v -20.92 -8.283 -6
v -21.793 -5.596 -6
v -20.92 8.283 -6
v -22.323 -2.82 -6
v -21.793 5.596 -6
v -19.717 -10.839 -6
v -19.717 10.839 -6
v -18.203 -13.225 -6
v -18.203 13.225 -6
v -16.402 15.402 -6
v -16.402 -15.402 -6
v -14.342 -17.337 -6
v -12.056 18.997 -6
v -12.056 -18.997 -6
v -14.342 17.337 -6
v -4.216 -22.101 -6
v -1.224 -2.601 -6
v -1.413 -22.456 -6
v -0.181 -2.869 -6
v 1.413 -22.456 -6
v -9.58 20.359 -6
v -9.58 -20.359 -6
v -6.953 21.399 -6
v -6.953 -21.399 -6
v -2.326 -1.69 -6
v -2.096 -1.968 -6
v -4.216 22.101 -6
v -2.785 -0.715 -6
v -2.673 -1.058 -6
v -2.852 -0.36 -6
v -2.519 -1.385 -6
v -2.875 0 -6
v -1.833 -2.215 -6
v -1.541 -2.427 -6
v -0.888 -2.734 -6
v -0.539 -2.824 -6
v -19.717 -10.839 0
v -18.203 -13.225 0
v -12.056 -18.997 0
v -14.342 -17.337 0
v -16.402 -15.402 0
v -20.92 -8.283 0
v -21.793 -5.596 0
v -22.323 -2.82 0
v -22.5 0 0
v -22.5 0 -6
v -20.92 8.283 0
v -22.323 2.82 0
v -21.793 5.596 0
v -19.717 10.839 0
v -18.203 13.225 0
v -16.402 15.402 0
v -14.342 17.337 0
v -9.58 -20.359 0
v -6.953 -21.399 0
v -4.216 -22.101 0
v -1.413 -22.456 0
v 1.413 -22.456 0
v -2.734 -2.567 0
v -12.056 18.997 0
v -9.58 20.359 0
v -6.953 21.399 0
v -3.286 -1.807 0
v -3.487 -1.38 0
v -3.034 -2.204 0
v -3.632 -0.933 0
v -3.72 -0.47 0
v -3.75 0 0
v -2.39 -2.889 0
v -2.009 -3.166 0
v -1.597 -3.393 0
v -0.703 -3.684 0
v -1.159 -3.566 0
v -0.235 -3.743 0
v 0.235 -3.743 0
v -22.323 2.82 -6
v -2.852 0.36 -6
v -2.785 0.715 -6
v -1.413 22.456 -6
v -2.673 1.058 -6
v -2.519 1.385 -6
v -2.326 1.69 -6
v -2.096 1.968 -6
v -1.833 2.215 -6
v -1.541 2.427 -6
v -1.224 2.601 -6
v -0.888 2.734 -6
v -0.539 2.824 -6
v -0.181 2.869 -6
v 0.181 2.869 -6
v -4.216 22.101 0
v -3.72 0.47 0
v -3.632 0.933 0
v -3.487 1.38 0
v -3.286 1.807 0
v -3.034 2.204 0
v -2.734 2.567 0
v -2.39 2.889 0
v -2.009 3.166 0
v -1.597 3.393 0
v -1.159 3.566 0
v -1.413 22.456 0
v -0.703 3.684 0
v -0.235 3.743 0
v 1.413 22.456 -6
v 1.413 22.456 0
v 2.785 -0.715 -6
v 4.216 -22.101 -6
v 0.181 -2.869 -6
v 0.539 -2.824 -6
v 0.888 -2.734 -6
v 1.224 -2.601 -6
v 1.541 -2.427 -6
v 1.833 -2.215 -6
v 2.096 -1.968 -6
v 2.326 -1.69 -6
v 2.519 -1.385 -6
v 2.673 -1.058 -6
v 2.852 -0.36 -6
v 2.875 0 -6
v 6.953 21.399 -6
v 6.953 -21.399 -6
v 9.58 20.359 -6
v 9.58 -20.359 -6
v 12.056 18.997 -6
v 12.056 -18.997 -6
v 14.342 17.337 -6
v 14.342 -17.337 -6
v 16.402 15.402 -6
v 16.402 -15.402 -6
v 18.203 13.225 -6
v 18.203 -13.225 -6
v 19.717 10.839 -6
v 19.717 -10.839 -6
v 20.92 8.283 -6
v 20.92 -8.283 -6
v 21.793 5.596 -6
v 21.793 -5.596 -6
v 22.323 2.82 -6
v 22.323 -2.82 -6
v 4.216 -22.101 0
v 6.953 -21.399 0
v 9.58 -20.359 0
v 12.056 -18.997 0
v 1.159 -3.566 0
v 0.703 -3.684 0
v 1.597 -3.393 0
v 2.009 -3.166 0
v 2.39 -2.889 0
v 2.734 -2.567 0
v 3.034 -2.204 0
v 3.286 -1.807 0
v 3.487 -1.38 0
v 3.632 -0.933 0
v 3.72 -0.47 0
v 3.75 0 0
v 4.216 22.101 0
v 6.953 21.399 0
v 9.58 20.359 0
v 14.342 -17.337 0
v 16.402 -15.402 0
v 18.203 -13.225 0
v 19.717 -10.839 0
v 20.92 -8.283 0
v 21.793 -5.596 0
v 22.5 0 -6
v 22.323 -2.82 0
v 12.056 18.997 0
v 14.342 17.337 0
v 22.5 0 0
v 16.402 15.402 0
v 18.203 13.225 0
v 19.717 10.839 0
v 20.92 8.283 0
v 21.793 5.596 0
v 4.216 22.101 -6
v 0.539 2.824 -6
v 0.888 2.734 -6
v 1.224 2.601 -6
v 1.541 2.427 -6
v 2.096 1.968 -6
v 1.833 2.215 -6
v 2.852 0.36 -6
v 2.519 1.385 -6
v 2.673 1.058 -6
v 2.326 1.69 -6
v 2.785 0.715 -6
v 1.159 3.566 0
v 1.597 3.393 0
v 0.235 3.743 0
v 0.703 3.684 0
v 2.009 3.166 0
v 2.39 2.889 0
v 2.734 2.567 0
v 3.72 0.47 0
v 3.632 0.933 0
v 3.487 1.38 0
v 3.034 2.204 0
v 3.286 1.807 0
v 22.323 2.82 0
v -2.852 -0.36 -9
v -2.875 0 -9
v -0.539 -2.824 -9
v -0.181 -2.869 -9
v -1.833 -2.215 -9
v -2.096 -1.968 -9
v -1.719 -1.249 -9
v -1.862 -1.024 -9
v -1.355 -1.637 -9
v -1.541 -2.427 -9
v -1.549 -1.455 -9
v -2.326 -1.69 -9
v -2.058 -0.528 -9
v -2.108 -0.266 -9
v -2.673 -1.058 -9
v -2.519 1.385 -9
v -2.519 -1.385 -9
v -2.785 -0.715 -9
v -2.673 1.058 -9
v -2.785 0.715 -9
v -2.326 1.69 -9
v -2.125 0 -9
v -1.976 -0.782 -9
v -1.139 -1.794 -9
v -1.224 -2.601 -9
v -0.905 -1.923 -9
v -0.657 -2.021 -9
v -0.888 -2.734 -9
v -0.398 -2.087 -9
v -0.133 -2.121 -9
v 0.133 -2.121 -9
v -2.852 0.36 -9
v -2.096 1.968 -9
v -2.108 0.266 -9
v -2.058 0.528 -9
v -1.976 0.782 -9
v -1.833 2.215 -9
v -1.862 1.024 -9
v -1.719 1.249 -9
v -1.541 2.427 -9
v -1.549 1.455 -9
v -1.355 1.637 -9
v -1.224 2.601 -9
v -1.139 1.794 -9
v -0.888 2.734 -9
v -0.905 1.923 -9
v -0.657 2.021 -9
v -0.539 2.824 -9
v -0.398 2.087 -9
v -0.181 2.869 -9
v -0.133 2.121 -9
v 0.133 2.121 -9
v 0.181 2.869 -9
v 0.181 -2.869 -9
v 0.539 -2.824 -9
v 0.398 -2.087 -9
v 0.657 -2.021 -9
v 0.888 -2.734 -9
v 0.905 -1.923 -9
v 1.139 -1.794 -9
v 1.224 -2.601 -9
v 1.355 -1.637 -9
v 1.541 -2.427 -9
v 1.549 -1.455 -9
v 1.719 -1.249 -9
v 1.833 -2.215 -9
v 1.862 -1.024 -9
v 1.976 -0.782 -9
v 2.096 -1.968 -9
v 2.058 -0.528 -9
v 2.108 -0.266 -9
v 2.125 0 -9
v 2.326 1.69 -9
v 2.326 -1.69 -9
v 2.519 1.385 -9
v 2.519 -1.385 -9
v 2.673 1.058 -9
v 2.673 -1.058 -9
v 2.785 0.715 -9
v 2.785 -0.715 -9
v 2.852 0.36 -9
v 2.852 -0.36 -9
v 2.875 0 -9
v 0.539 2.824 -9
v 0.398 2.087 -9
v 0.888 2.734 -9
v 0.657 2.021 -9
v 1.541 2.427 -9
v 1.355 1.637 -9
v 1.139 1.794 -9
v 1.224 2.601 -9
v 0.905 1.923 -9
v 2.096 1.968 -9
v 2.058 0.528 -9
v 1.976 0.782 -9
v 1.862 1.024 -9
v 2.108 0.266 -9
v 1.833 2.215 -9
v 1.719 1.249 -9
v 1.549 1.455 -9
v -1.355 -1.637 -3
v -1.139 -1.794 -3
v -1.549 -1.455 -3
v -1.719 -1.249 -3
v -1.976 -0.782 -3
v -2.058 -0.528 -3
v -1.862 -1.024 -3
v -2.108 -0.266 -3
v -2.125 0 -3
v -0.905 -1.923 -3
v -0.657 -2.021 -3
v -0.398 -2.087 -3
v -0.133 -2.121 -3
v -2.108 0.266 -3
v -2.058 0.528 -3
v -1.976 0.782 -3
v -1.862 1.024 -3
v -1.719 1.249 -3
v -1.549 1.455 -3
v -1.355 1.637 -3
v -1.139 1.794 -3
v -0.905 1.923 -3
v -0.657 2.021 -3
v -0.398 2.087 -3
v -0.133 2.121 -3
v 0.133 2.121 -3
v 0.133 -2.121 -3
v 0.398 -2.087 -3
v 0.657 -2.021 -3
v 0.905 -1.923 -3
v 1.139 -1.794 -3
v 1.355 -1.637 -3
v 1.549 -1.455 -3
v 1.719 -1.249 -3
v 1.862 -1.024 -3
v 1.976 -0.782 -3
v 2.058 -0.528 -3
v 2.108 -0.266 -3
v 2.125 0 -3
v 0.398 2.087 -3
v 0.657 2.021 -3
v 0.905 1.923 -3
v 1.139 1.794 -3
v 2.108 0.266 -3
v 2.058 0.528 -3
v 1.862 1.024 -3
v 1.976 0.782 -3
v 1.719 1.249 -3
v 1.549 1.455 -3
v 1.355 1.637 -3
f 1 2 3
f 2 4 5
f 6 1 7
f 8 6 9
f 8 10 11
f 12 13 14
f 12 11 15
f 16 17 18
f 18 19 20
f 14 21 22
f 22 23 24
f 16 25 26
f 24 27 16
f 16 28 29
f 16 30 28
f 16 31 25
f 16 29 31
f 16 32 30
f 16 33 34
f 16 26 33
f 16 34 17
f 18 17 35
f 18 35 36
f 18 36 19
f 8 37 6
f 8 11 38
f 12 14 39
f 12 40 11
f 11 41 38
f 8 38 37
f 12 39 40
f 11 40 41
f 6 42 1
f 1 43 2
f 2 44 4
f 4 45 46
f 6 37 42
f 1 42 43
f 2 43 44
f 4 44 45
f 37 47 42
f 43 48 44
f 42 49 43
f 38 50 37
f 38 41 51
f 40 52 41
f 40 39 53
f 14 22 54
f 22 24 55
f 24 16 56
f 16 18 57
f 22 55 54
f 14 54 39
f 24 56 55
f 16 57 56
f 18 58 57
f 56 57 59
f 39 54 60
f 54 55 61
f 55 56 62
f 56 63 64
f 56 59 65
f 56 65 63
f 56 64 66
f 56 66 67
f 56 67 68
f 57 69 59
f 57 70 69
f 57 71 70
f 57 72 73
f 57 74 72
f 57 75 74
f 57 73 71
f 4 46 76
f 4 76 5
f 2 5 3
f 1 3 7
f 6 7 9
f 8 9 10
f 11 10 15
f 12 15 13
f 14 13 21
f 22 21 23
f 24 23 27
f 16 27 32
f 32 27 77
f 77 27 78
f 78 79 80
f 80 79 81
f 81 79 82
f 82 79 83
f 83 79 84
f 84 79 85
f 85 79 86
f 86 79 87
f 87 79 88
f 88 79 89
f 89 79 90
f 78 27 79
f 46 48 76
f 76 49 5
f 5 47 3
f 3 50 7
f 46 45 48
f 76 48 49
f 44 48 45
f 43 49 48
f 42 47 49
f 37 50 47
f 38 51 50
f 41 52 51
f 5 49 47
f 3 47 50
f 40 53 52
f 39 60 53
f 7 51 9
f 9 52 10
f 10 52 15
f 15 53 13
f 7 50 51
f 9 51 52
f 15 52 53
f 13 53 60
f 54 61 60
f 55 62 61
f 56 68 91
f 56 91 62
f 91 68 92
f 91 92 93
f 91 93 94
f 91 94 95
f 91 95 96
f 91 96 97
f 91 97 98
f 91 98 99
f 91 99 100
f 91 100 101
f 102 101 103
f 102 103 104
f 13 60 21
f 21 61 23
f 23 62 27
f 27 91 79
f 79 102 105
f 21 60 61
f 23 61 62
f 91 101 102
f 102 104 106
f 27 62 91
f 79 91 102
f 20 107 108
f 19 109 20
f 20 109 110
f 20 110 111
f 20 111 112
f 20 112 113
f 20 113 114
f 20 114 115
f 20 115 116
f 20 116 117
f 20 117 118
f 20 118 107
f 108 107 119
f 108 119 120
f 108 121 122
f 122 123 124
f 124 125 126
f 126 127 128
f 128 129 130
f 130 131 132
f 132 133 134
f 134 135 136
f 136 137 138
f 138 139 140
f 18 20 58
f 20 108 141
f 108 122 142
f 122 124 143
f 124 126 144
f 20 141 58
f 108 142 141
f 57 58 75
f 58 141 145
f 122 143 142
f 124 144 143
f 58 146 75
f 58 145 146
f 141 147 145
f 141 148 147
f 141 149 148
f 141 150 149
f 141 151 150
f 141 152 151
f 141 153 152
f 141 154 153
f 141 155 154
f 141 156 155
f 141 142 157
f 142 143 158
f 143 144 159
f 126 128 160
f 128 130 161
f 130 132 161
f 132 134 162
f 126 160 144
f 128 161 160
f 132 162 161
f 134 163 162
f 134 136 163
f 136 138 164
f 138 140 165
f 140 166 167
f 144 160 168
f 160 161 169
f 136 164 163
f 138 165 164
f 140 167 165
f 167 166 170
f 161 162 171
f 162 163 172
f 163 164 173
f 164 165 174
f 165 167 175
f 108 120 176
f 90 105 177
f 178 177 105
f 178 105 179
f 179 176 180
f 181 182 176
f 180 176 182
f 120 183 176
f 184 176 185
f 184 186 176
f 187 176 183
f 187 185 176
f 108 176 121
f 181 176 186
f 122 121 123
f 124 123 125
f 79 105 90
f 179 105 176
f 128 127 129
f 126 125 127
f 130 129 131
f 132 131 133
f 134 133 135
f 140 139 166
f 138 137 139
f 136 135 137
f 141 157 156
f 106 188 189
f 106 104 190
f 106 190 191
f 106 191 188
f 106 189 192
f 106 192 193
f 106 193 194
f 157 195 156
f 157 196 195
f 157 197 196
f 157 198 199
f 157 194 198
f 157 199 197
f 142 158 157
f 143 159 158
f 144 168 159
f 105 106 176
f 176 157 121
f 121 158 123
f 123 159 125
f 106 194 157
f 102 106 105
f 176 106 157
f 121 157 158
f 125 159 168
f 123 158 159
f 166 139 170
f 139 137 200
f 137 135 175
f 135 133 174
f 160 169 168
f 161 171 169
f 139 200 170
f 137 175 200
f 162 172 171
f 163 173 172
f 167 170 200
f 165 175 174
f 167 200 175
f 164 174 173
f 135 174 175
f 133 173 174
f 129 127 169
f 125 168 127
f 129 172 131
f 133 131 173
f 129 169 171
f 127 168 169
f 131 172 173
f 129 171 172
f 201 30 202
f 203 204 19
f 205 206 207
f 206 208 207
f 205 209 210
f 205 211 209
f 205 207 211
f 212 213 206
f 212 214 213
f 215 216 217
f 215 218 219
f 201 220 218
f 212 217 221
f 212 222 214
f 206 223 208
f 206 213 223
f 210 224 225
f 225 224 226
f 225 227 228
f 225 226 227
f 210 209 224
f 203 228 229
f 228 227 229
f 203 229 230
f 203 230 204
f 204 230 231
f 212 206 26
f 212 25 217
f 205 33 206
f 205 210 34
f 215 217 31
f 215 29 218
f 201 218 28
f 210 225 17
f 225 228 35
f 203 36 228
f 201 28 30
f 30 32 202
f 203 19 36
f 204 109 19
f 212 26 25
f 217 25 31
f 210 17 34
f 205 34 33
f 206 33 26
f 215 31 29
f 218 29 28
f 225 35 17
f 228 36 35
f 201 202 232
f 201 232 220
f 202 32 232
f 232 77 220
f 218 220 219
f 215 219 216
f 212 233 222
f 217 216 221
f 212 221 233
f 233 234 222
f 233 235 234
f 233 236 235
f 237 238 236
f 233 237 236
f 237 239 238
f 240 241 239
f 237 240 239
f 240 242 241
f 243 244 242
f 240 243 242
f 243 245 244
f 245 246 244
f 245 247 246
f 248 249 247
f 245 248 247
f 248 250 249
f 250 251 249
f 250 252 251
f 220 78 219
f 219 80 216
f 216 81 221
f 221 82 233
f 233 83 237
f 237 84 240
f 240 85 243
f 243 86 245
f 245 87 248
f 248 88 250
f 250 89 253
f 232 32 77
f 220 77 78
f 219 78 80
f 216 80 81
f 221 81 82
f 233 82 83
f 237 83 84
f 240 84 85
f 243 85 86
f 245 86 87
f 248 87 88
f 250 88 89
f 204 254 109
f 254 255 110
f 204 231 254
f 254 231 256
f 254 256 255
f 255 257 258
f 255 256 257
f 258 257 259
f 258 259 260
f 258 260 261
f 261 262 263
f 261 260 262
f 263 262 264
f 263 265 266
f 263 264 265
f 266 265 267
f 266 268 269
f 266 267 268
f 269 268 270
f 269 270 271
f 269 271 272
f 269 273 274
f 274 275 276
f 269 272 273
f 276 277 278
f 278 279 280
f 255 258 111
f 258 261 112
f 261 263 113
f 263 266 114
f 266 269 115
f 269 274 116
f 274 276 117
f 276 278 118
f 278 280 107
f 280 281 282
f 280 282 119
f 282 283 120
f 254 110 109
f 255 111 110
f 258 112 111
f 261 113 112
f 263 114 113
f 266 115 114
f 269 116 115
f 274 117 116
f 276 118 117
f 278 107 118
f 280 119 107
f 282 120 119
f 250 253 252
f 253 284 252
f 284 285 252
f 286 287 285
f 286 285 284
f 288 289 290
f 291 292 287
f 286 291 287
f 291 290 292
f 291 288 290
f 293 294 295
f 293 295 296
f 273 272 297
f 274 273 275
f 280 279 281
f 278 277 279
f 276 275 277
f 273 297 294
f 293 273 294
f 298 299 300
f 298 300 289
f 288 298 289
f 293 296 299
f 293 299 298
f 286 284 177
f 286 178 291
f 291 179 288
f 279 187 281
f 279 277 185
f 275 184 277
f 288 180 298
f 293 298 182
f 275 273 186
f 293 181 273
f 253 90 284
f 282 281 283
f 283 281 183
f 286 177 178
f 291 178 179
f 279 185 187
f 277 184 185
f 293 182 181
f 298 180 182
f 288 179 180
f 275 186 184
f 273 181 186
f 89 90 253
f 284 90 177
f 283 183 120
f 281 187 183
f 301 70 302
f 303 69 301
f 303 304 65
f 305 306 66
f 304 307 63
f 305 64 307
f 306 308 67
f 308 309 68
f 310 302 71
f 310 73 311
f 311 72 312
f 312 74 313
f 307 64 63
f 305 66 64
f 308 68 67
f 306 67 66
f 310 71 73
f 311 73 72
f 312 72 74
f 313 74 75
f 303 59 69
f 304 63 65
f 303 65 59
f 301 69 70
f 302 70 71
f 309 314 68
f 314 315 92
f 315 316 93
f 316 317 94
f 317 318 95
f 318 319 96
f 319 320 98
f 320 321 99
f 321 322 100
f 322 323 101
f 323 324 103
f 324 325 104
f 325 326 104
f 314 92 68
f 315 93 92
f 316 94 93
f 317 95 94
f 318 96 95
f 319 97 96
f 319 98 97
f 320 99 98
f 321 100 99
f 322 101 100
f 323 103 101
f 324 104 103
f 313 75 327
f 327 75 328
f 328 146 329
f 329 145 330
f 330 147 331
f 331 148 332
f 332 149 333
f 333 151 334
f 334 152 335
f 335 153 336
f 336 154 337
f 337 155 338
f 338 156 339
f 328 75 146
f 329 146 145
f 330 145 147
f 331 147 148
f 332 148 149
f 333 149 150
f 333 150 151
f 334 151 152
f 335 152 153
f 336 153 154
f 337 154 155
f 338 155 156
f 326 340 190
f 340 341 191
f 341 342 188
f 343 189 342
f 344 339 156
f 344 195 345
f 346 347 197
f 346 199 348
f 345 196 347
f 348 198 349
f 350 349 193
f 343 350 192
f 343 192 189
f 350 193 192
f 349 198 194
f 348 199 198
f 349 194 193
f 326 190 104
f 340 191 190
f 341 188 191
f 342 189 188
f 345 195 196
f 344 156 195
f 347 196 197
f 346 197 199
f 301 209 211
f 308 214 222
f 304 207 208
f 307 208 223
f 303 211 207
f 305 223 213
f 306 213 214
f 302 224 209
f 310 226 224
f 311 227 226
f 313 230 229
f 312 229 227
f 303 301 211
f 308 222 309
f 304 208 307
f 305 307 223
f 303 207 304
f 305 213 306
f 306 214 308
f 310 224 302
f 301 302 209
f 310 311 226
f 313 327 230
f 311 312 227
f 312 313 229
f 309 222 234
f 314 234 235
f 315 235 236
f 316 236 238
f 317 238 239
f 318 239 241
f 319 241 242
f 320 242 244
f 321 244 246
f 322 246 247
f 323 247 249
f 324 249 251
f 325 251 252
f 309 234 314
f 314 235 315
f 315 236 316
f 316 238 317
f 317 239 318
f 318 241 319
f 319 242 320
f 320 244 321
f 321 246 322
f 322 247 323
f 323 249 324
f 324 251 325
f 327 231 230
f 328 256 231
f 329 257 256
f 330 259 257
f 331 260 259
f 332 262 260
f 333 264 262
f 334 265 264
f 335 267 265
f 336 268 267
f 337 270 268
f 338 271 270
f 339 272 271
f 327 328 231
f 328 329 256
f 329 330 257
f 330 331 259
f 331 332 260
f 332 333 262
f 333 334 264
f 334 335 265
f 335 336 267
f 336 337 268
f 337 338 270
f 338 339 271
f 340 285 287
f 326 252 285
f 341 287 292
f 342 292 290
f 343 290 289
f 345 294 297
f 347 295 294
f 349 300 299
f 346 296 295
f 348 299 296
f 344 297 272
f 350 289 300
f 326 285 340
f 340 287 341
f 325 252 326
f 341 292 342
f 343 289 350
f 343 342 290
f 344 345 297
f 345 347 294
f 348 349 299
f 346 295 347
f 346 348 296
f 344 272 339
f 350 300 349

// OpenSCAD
$fn = 50;

difference() {
	union() {
		translate(v = [0, 0, -6.0]) {
			cylinder(h = 6, r = 22.5);
		}
		#translate(v = [0, 0, -9.0]) {
			cylinder(h = 9, r = 2.875);
		}
	}
	union() {
		translate(v = [0, 0, 0]) {
			rotate(a = [0, 0, 0]) {
				difference() {
					union() {
						translate(v = [0, 0, -9.0]) {
							cylinder(h = 9, r = 2.0);
						}
						translate(v = [0, 0, -3]) {
							cylinder(h = 3, r1 = 2.125, r2 = 3.75);
						}
						translate(v = [0, 0, -9.0]) {
							cylinder(h = 9, r = 2.125);
						}
						translate(v = [0, 0, -9.0]) {
							cylinder(h = 9, r = 2.0);
						}
					}
					union();
				}
			}
		}
	}
}
